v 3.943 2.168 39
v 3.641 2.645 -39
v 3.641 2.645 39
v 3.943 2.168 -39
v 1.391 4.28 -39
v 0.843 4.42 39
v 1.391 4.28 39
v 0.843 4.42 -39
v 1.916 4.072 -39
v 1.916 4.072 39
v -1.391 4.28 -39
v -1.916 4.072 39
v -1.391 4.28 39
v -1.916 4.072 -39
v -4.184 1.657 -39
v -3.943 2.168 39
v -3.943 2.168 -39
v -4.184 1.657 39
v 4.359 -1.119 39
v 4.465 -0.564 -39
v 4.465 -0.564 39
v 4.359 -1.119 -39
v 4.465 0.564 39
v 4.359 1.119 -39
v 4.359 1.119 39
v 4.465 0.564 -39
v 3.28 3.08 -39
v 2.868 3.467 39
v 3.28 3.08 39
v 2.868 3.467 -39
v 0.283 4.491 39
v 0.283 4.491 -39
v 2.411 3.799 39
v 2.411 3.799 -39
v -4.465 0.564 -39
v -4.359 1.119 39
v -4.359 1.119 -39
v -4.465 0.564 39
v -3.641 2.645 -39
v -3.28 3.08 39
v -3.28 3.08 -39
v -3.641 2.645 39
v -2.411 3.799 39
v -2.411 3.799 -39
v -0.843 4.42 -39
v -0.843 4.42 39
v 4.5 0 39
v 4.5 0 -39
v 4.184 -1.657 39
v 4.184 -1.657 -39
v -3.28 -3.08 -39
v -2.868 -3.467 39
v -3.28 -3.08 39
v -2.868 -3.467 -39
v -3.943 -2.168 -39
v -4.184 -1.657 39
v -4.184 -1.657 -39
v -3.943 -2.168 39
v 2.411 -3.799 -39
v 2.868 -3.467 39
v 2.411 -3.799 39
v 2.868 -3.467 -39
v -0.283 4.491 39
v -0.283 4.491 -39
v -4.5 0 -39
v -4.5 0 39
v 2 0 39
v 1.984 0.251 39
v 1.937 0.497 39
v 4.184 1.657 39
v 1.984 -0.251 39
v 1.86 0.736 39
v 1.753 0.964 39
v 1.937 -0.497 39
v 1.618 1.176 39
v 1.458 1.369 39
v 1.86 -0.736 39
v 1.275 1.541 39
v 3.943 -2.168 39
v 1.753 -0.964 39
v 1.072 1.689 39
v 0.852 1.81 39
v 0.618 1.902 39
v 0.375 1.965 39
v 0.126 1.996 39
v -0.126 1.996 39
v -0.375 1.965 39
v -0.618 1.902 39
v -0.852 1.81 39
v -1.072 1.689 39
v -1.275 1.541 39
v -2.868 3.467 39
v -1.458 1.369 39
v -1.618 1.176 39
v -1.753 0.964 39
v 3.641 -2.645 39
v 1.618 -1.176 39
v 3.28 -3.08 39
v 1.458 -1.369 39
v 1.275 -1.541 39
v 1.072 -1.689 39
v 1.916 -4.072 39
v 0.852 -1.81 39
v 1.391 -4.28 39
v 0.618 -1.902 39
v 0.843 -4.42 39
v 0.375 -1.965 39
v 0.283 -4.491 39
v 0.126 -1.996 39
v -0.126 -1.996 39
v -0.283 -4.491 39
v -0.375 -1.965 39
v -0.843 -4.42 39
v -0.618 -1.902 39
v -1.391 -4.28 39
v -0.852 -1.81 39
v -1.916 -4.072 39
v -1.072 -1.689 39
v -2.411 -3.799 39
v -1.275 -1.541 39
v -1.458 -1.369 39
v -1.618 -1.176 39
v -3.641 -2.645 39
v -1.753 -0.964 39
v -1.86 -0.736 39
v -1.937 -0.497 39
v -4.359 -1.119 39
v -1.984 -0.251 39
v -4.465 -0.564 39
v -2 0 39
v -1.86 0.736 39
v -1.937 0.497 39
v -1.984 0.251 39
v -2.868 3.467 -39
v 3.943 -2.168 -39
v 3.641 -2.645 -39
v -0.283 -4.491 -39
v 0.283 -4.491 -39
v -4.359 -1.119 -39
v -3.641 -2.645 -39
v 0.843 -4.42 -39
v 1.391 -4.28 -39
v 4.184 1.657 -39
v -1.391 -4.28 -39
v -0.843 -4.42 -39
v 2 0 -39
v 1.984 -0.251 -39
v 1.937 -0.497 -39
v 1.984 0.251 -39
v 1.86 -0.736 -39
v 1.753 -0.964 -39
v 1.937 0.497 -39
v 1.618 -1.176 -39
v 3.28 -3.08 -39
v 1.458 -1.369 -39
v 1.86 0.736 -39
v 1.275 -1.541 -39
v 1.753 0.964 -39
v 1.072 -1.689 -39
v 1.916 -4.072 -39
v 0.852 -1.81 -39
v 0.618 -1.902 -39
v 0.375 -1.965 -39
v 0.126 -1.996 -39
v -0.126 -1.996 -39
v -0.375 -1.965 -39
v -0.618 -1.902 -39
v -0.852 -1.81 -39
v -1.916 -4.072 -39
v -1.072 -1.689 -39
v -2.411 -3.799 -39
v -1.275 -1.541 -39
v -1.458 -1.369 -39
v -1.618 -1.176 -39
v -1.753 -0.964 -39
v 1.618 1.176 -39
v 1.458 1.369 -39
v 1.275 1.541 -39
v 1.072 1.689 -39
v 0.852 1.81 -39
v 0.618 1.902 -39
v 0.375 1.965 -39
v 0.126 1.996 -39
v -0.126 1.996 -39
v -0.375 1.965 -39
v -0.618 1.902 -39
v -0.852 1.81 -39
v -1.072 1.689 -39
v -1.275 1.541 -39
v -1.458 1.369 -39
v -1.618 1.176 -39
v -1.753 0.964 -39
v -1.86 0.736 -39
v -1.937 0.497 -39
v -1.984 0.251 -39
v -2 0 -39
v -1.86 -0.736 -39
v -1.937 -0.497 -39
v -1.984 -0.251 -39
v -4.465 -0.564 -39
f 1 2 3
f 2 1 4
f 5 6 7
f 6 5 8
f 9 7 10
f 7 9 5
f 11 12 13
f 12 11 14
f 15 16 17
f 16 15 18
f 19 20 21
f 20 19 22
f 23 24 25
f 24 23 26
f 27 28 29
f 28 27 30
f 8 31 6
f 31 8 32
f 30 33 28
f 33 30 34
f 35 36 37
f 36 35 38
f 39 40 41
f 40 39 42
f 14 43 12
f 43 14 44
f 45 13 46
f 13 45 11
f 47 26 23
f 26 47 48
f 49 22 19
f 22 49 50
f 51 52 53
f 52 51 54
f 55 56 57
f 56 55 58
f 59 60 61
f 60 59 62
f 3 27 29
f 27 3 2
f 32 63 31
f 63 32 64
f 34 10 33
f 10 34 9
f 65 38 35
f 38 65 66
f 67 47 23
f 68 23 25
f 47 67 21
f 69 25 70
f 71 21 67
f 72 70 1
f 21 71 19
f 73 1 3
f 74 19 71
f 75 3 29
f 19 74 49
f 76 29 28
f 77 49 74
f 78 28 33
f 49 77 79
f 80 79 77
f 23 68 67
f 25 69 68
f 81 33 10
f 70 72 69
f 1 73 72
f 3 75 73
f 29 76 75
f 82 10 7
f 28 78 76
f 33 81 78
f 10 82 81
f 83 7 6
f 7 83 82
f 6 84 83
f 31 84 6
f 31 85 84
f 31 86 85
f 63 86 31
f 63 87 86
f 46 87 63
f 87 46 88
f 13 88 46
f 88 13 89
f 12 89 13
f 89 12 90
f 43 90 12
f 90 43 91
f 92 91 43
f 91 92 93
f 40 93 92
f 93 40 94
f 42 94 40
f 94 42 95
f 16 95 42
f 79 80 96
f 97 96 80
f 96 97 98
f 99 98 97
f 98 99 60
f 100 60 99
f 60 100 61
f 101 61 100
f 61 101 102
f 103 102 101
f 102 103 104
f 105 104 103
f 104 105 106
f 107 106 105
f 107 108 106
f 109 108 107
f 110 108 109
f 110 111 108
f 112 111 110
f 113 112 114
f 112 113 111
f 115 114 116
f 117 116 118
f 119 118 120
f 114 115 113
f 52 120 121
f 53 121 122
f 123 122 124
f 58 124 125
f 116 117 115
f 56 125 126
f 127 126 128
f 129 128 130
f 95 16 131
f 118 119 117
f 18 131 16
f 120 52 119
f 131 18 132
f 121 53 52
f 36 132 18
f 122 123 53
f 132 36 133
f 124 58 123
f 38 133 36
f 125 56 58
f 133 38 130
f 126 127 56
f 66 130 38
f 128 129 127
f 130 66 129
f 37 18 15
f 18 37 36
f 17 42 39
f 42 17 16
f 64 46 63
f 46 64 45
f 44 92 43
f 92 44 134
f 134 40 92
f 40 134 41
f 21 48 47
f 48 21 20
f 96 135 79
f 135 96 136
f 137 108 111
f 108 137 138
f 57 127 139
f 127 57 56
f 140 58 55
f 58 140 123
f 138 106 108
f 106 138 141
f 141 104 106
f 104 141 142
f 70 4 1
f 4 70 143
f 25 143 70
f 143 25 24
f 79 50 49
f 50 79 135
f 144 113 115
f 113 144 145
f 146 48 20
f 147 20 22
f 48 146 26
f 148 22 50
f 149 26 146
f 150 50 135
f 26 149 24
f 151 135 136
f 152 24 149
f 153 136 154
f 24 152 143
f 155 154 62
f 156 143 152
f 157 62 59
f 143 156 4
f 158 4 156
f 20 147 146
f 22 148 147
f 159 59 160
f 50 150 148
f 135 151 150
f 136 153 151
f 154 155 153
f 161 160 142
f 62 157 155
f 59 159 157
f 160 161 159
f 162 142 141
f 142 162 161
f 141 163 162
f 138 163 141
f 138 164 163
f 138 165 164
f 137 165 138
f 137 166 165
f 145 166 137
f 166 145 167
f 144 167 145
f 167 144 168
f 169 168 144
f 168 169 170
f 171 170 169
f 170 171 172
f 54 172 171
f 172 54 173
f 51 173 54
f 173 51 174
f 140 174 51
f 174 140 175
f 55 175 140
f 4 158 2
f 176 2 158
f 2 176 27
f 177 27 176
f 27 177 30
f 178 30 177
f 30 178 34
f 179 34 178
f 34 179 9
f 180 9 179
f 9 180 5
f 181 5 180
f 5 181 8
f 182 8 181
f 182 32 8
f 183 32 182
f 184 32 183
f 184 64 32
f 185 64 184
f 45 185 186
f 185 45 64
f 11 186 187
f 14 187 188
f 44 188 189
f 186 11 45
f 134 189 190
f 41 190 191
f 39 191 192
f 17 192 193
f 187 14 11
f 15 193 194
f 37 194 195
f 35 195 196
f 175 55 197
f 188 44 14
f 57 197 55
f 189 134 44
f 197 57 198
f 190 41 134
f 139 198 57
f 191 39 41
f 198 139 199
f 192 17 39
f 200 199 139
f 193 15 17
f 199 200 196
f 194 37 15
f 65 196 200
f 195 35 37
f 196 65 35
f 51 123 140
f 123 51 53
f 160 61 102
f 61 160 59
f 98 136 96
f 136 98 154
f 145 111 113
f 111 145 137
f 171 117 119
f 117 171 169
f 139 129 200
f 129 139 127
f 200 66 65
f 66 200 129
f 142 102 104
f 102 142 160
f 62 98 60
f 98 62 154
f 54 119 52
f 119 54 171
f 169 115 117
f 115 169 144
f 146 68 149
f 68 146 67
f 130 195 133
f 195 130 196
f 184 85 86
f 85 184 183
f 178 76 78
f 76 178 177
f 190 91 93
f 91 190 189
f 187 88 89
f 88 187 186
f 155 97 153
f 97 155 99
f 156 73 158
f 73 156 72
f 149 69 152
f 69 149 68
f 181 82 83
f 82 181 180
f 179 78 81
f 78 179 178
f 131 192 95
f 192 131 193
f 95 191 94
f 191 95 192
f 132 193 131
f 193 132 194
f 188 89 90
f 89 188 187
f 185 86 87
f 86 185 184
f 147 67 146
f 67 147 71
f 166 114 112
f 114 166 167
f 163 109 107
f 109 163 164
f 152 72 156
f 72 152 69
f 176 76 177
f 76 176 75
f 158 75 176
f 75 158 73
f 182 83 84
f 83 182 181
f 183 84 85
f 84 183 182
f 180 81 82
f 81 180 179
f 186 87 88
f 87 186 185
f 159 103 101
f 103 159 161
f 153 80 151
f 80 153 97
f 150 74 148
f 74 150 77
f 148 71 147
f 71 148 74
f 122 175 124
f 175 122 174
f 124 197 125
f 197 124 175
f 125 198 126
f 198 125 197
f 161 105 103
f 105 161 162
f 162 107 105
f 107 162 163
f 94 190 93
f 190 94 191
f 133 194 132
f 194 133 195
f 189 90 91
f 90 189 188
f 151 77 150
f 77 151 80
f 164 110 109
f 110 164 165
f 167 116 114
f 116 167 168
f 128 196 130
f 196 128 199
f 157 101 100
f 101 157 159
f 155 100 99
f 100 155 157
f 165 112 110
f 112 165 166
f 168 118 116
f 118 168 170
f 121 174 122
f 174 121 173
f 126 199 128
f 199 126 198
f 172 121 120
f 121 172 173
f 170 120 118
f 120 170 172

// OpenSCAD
$fn = 50;


difference() {
	union() {
		translate(v = [0, 0, -39.0000000000]) {
			cylinder(h = 78, r = 4.5000000000);
		}
	}
	union() {
		translate(v = [0, 0, -100.0000000000]) {
			cylinder(h = 200, r = 2);
		}
	}
}
